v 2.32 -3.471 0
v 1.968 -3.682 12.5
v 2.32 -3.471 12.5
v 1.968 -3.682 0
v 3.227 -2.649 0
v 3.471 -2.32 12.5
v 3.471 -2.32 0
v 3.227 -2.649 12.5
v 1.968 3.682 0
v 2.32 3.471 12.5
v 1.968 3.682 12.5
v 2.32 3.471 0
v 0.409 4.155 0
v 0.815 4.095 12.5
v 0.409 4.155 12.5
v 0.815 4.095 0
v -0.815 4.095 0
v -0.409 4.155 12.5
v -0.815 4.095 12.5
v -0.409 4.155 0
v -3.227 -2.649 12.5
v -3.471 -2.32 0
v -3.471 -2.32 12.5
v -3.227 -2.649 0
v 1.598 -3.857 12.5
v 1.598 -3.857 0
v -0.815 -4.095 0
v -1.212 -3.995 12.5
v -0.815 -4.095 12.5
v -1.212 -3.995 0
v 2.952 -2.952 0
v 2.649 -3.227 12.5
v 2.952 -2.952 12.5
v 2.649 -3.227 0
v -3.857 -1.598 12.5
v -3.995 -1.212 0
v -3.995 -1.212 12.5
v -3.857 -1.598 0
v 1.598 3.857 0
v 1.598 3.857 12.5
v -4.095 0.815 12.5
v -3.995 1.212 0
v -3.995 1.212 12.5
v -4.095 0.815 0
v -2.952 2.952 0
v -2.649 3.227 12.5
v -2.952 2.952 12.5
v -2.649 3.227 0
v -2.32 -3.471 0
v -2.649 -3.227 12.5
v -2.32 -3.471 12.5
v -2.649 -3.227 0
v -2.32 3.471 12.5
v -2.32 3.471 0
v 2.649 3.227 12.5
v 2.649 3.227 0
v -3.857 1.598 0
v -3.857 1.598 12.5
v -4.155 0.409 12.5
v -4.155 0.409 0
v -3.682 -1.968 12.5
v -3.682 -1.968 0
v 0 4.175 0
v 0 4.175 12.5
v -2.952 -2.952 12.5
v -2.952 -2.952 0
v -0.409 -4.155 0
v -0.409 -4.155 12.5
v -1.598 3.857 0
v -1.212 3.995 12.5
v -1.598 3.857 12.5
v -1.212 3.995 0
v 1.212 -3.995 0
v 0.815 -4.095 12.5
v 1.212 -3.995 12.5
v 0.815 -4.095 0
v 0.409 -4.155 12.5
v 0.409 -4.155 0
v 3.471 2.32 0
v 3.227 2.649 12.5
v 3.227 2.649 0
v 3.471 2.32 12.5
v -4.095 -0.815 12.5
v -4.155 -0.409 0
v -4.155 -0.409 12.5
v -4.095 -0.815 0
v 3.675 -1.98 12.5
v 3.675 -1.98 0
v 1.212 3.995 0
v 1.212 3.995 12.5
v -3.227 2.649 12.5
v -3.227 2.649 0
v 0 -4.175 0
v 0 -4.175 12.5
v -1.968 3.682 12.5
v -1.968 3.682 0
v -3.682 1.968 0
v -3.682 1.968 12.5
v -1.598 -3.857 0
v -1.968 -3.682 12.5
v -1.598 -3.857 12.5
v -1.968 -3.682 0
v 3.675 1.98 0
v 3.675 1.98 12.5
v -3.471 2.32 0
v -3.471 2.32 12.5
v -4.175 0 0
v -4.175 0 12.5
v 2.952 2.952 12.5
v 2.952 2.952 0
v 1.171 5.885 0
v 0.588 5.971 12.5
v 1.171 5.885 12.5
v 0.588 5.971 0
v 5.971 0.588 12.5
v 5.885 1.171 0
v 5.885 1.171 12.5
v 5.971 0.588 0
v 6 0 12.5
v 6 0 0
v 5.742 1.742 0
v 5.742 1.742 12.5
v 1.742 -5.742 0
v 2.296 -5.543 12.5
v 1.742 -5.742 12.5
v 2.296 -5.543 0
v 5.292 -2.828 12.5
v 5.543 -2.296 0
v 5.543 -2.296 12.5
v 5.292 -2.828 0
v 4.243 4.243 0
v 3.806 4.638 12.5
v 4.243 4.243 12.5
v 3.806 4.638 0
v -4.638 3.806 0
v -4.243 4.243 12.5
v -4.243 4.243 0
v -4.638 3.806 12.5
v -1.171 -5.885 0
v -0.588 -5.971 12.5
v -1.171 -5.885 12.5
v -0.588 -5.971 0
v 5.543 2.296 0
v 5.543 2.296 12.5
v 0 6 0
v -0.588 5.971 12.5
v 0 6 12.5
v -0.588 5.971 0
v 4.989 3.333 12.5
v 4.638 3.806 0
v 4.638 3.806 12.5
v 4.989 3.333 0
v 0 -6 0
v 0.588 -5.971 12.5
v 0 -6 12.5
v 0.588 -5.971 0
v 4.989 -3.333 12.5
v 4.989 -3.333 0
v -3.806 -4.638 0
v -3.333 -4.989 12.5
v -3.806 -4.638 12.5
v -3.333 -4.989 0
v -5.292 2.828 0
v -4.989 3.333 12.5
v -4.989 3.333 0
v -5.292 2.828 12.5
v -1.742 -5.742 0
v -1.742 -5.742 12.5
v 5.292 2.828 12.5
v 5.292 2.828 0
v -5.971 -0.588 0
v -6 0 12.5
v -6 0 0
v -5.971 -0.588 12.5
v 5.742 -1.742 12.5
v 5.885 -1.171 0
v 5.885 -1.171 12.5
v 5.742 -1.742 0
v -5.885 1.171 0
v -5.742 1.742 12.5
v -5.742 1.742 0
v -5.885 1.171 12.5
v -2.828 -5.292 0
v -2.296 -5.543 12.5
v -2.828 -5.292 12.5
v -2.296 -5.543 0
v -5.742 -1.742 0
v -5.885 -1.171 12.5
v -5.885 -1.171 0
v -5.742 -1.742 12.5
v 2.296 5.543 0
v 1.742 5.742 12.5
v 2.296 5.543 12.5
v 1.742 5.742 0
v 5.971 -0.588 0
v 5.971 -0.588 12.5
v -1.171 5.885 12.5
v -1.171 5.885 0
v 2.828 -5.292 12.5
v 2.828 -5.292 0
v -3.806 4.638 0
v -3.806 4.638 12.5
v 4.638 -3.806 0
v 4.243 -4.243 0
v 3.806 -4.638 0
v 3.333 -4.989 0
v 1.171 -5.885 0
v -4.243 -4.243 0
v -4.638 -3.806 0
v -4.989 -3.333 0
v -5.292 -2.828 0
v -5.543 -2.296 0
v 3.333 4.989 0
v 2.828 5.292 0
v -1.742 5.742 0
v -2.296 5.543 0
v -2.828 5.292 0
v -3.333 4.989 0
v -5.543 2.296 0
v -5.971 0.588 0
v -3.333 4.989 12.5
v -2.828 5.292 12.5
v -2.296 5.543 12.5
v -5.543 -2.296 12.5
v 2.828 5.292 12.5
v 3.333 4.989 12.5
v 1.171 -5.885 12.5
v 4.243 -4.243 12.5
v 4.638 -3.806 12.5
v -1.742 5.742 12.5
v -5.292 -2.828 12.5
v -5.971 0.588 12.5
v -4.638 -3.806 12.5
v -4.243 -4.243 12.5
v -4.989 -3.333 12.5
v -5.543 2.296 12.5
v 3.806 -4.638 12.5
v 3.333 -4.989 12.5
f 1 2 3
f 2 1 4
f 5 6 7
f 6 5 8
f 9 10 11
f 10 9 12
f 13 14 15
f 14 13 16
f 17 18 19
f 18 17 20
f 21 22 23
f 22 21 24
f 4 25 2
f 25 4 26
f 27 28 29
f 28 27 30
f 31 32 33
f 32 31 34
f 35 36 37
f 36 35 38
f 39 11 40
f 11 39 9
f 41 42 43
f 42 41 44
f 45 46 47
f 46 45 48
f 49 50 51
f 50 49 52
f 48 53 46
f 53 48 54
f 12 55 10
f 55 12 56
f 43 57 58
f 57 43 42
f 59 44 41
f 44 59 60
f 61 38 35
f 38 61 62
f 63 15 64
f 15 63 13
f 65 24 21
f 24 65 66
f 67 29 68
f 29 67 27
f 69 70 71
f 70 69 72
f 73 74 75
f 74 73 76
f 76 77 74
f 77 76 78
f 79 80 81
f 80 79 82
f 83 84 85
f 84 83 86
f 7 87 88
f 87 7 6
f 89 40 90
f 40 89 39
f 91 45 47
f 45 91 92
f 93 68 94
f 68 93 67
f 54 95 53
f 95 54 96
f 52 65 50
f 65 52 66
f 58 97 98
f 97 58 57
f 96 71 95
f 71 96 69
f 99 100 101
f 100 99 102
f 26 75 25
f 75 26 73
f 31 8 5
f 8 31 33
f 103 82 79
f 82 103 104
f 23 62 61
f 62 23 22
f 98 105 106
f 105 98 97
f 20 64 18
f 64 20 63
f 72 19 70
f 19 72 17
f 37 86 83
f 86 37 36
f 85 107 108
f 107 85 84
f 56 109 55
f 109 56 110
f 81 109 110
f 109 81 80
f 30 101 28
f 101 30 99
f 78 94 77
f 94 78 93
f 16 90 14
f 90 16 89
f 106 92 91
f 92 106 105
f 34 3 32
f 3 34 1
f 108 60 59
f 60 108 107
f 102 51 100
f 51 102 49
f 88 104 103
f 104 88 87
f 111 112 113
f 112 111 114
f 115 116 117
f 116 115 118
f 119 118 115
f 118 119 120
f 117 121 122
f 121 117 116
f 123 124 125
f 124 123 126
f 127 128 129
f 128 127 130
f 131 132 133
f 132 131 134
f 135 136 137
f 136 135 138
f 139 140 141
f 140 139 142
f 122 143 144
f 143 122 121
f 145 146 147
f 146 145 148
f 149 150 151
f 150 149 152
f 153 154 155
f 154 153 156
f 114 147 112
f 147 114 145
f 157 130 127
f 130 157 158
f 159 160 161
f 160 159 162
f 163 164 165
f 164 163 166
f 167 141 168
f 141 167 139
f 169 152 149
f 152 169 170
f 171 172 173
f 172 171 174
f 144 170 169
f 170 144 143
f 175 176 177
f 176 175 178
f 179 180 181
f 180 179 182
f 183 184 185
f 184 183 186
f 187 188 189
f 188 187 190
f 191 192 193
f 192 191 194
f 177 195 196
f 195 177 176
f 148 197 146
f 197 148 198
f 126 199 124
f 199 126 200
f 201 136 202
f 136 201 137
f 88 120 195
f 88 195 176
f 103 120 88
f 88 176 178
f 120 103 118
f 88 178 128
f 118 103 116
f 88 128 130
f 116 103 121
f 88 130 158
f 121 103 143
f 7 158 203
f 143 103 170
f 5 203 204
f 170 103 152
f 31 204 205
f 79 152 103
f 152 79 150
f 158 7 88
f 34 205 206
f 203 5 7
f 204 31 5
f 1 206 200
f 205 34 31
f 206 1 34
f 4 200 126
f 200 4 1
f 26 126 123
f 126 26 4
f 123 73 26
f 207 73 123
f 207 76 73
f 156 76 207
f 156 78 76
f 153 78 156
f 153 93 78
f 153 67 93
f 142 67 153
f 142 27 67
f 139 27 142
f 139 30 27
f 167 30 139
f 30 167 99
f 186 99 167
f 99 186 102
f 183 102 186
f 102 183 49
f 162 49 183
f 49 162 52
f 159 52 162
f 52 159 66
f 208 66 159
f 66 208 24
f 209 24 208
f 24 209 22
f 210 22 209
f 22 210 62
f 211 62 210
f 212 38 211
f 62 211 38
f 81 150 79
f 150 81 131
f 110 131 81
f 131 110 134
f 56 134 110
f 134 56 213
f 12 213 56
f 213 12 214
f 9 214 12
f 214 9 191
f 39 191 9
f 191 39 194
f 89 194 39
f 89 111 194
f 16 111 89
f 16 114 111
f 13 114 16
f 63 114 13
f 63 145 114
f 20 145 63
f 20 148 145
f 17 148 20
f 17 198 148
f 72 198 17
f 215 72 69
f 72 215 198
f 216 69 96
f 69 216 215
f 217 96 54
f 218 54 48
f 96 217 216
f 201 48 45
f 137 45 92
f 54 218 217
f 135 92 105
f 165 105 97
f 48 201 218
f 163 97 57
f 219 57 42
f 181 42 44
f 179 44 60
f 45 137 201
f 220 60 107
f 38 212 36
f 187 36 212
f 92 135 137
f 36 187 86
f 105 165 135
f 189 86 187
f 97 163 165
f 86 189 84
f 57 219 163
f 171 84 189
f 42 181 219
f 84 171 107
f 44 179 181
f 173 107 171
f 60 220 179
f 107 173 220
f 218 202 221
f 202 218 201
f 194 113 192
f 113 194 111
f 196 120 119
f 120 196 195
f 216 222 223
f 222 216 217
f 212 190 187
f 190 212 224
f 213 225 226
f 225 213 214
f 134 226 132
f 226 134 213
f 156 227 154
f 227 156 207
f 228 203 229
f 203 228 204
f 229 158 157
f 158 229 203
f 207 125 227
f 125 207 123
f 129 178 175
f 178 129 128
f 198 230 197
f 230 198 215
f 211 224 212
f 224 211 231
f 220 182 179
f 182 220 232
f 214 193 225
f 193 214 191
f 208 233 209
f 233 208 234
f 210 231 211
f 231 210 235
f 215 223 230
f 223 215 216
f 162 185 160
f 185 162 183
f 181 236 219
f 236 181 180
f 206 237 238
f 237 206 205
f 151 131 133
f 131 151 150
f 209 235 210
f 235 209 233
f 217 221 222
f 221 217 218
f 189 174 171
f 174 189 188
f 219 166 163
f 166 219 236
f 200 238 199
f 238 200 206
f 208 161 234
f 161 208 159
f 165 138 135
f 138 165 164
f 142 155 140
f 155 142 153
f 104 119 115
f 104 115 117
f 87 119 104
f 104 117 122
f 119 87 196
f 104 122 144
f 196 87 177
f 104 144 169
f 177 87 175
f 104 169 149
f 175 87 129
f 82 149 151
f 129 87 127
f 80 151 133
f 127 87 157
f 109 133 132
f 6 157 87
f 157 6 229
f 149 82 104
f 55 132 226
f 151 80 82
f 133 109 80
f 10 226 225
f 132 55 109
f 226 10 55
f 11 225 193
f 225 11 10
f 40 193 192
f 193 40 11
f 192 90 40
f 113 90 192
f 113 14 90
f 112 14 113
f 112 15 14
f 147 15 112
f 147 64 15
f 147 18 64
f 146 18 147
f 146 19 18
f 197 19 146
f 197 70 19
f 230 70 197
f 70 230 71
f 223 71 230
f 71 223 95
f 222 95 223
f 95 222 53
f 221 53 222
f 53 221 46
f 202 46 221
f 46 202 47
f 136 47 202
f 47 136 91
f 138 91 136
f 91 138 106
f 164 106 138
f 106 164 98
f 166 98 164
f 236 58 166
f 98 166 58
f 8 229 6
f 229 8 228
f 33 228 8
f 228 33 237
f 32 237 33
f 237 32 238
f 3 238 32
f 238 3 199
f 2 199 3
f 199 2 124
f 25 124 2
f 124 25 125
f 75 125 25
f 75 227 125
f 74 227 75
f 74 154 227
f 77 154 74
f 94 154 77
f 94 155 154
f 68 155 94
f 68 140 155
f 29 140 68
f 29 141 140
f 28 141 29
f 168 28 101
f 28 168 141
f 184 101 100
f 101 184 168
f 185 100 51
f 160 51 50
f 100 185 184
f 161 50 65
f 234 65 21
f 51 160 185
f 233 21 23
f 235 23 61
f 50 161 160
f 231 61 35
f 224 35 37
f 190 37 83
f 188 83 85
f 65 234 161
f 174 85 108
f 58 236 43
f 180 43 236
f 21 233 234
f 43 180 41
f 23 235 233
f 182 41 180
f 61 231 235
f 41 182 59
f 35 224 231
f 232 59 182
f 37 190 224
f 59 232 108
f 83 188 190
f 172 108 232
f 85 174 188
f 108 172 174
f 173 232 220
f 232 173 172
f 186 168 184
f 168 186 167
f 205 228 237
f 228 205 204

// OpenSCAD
// file: parameters.scad
// =============================================================================
// Gen-BH — nightly 2026-10-04 (physics_scorer, honest magpylib watts)
// All 16 O20 magnets used as 8 double-height (10 mm) poles: 4-pole / 6-coil dual rotor on 3 mm steel, tall 9.9 mm copper; O5 assists left out because the scorer shows they do not help this pole layout.
// Clocking 0 deg (magnets N facing S) + D-flat keyed bore + index notch + flip-symmetric hole map.
// Windable 2-piece bobbin; turns = physics_scorer turns_fit; copper only between flanges.
// Steel back-iron: two 3.0 mm mild-steel discs (steel_backiron_disc.dxf); magnets sit ON the steel
// (through-pockets) -> score with --back-iron.
// =============================================================================
topology            = "dual_rotor";

// --- Wire / winding (physics_scorer winding-fit) -------------------------------
wire_awg            = 26;
wire_od             = 0.45;     // insulated OD mm (bare 0.405)
fill_realistic      = 0.60;     // insulated-wire area / window, hand-wound layered
turns               = 571;       // = physics_scorer turns_fit (do NOT raise)
coil_former_type    = "bobbin";
coil_core_inset     = 15.30;     // radial copper build: hub = copper boundary inset by this
wind_build_axial    = 0.0;      // nothing proud of the flanges
wind_build_radial   = 0.0;

// --- Bobbin (base + lid) ---------------------------------------------------------
coil_id_r           = 22.00;    // copper boundary sector
coil_od_r           = 62.00;
span_deg            = 50.35;    // = pitch - 2*asin((wall+0.85)/coil_id_r) -> >=1.2 mm stator web
former_web          = 9.90;     // copper height between flanges (TALL copper: steel keeps Bz up)
flange_t            = 0.80;     // >= 0.8 mm FDM wall rule (tall winds push on the flanges)
wall                = 1.00;     // flange lip beyond copper
former_bare_h       = former_web + 2 * flange_t;
coil_envelope_h     = former_bare_h + 2 * wind_build_axial;
tab_w               = 7.0;
tab_len             = 7.0;
tab_h               = former_bare_h / 2;
pin_d               = 1.9;      // 1.75 mm filament locating pin
coil_mount_r        = coil_od_r + 0.2 + 4.0;
lead_y              = 1.6;
lead_slot_w         = 0.9;
lead_groove_d       = 0.6;

// --- Gap -------------------------------------------------------------------------
run_clear           = 0.50;     // rotor face -> flange
gap_spacer_h        = run_clear + wind_build_axial;
m2m                 = coil_envelope_h + 2 * run_clear;   // rotor face to rotor face (= gap_sleeve length)

// --- Stator ----------------------------------------------------------------------
coil_stations       = 6;
bay_clear           = 0.25;
stator_thick        = former_bare_h;                        // bobbins flush both faces
stator_od           = 148.0;
shaft_clear_stator  = 14.0;     // stator is static; gap sleeve OD 12 spins inside

// --- Rotor(s) --------------------------------------------------------------------
magnet_Br           = 1.43;     // N52
magnet_d_large      = 20.0;
magnet_h_large      = 10.0;      // two O20x5 stacked per pocket
magnet_h_small      = 10.0;      // two O5x5 stacked per pocket
halbach_magnetisation = "none";  // NO O5 assist magnets in this kit (scorer: they do not help 4-pole)
rotor_b_same_axis   = true;     // same-index magnets share one axis: N faces S across the gap
large_pocket_d      = 20.3;
small_pocket_d      = 5.3;
pocket_h            = 10.10;     // THROUGH the carrier: magnet back face sits on the steel disc
large_n             = 4;
R_large             = 44.0;
small_r_list        = [];       // no O5 pockets
carrier_od          = 126.0;
carrier_thick       = pocket_h;
hub_h               = 10.0;
hub_od              = 24.0;     // slim hub so the M4 brace rods fit at R~18 inside the coil ring
hub_insert_d        = 4.0;      // M3 heat-set insert, radial, bears on the D-flat
rotor_b_offset_deg  = 0.0;      // CLOCKING: magnets directly opposite
shaft_key           = "dflat";
dflat_depth         = 0.5;      // 8 mm shaft with 0.5 mm flat (7.5 across flat)
index_notch_d       = 3.0;

// --- Steel back-iron (buyable laser-cut) -------------------------------------------
steel_t             = 3.0;      // mild steel thickness (not modelled by the image method; >=3 avoids saturation)
steel_center_hole   = 26.0;     // slips over the rotor hub (OD 24)

// --- Modular MAX interface ----------------------------------------------------------
shaft_bore          = 8.35;
dflat_x             = 4.0 - dflat_depth + (shaft_bore - 8.0) / 2;
bearing_d           = 21.85;
bearing_h           = 7.2;
m3_clear            = 3.5;
bolt_r_inner        = 27.0;     // M3 steel-disc clamp bolts (inside the magnet ring)
bolt_n_inner        = 4;
bolt_inner_angles   = [45, 135, 225, 315];
bolt_r_outer        = 58.0;     // M3 steel-disc clamp bolts (outside the magnet ring)
bolt_outer_angles   = [45, 135, 225, 315];
flange_bolt_r       = 69.0;     // frame rods: OUTSIDE the rotor OD (rotors spin inside them)
flange_bolt_n       = 6;
flange_bolt_offset  = 30.00;    // between coil stations -> never cuts a lead groove/tab
brace_r             = 17.5;
brace_d             = 4.3;      // temporary M4 jack rods (assembly only)
brace_n             = 4;
brace_angles        = [0, 90, 180, 270];          // flip-symmetric

spacer_pad_od       = 14.0;
spacer_pad_id       = m3_clear;
endbell_od          = 148.0;
endbell_thick       = 8.0;
endbell_shaft_clear = 10.0;
collar_h            = 10.0;
standoff_od         = 9.0;
frame_standoff_h    = run_clear + carrier_thick + hub_h + collar_h + 2.0;
sleeve_od           = 12.0;
plate_max_mm        = 410;

$fn = 64;
// main file
// Gen-BH — gap sleeve: rigid spacer on the shaft BETWEEN the two rotor carriers (passes through the stator
// hole). Length = m2m, so it sets the magnet gap and carries the full magnet pull. Print x1, upright.
include <parameters.scad>;
$fn = 64;
// D-flat keyed bore: flat faces +X (angle 0 = magnet pocket 0 = index notch)
module dflat_bore(h) {
    intersection() {
        cylinder(d=shaft_bore, h=h);
        translate([-shaft_bore, -shaft_bore, 0]) cube([shaft_bore + dflat_x, 2*shaft_bore, h]);
    }
}

difference() {
    cylinder(d=sleeve_od, h=m2m);
    translate([0, 0, -0.1]) dflat_bore(m2m + 0.2);
}
